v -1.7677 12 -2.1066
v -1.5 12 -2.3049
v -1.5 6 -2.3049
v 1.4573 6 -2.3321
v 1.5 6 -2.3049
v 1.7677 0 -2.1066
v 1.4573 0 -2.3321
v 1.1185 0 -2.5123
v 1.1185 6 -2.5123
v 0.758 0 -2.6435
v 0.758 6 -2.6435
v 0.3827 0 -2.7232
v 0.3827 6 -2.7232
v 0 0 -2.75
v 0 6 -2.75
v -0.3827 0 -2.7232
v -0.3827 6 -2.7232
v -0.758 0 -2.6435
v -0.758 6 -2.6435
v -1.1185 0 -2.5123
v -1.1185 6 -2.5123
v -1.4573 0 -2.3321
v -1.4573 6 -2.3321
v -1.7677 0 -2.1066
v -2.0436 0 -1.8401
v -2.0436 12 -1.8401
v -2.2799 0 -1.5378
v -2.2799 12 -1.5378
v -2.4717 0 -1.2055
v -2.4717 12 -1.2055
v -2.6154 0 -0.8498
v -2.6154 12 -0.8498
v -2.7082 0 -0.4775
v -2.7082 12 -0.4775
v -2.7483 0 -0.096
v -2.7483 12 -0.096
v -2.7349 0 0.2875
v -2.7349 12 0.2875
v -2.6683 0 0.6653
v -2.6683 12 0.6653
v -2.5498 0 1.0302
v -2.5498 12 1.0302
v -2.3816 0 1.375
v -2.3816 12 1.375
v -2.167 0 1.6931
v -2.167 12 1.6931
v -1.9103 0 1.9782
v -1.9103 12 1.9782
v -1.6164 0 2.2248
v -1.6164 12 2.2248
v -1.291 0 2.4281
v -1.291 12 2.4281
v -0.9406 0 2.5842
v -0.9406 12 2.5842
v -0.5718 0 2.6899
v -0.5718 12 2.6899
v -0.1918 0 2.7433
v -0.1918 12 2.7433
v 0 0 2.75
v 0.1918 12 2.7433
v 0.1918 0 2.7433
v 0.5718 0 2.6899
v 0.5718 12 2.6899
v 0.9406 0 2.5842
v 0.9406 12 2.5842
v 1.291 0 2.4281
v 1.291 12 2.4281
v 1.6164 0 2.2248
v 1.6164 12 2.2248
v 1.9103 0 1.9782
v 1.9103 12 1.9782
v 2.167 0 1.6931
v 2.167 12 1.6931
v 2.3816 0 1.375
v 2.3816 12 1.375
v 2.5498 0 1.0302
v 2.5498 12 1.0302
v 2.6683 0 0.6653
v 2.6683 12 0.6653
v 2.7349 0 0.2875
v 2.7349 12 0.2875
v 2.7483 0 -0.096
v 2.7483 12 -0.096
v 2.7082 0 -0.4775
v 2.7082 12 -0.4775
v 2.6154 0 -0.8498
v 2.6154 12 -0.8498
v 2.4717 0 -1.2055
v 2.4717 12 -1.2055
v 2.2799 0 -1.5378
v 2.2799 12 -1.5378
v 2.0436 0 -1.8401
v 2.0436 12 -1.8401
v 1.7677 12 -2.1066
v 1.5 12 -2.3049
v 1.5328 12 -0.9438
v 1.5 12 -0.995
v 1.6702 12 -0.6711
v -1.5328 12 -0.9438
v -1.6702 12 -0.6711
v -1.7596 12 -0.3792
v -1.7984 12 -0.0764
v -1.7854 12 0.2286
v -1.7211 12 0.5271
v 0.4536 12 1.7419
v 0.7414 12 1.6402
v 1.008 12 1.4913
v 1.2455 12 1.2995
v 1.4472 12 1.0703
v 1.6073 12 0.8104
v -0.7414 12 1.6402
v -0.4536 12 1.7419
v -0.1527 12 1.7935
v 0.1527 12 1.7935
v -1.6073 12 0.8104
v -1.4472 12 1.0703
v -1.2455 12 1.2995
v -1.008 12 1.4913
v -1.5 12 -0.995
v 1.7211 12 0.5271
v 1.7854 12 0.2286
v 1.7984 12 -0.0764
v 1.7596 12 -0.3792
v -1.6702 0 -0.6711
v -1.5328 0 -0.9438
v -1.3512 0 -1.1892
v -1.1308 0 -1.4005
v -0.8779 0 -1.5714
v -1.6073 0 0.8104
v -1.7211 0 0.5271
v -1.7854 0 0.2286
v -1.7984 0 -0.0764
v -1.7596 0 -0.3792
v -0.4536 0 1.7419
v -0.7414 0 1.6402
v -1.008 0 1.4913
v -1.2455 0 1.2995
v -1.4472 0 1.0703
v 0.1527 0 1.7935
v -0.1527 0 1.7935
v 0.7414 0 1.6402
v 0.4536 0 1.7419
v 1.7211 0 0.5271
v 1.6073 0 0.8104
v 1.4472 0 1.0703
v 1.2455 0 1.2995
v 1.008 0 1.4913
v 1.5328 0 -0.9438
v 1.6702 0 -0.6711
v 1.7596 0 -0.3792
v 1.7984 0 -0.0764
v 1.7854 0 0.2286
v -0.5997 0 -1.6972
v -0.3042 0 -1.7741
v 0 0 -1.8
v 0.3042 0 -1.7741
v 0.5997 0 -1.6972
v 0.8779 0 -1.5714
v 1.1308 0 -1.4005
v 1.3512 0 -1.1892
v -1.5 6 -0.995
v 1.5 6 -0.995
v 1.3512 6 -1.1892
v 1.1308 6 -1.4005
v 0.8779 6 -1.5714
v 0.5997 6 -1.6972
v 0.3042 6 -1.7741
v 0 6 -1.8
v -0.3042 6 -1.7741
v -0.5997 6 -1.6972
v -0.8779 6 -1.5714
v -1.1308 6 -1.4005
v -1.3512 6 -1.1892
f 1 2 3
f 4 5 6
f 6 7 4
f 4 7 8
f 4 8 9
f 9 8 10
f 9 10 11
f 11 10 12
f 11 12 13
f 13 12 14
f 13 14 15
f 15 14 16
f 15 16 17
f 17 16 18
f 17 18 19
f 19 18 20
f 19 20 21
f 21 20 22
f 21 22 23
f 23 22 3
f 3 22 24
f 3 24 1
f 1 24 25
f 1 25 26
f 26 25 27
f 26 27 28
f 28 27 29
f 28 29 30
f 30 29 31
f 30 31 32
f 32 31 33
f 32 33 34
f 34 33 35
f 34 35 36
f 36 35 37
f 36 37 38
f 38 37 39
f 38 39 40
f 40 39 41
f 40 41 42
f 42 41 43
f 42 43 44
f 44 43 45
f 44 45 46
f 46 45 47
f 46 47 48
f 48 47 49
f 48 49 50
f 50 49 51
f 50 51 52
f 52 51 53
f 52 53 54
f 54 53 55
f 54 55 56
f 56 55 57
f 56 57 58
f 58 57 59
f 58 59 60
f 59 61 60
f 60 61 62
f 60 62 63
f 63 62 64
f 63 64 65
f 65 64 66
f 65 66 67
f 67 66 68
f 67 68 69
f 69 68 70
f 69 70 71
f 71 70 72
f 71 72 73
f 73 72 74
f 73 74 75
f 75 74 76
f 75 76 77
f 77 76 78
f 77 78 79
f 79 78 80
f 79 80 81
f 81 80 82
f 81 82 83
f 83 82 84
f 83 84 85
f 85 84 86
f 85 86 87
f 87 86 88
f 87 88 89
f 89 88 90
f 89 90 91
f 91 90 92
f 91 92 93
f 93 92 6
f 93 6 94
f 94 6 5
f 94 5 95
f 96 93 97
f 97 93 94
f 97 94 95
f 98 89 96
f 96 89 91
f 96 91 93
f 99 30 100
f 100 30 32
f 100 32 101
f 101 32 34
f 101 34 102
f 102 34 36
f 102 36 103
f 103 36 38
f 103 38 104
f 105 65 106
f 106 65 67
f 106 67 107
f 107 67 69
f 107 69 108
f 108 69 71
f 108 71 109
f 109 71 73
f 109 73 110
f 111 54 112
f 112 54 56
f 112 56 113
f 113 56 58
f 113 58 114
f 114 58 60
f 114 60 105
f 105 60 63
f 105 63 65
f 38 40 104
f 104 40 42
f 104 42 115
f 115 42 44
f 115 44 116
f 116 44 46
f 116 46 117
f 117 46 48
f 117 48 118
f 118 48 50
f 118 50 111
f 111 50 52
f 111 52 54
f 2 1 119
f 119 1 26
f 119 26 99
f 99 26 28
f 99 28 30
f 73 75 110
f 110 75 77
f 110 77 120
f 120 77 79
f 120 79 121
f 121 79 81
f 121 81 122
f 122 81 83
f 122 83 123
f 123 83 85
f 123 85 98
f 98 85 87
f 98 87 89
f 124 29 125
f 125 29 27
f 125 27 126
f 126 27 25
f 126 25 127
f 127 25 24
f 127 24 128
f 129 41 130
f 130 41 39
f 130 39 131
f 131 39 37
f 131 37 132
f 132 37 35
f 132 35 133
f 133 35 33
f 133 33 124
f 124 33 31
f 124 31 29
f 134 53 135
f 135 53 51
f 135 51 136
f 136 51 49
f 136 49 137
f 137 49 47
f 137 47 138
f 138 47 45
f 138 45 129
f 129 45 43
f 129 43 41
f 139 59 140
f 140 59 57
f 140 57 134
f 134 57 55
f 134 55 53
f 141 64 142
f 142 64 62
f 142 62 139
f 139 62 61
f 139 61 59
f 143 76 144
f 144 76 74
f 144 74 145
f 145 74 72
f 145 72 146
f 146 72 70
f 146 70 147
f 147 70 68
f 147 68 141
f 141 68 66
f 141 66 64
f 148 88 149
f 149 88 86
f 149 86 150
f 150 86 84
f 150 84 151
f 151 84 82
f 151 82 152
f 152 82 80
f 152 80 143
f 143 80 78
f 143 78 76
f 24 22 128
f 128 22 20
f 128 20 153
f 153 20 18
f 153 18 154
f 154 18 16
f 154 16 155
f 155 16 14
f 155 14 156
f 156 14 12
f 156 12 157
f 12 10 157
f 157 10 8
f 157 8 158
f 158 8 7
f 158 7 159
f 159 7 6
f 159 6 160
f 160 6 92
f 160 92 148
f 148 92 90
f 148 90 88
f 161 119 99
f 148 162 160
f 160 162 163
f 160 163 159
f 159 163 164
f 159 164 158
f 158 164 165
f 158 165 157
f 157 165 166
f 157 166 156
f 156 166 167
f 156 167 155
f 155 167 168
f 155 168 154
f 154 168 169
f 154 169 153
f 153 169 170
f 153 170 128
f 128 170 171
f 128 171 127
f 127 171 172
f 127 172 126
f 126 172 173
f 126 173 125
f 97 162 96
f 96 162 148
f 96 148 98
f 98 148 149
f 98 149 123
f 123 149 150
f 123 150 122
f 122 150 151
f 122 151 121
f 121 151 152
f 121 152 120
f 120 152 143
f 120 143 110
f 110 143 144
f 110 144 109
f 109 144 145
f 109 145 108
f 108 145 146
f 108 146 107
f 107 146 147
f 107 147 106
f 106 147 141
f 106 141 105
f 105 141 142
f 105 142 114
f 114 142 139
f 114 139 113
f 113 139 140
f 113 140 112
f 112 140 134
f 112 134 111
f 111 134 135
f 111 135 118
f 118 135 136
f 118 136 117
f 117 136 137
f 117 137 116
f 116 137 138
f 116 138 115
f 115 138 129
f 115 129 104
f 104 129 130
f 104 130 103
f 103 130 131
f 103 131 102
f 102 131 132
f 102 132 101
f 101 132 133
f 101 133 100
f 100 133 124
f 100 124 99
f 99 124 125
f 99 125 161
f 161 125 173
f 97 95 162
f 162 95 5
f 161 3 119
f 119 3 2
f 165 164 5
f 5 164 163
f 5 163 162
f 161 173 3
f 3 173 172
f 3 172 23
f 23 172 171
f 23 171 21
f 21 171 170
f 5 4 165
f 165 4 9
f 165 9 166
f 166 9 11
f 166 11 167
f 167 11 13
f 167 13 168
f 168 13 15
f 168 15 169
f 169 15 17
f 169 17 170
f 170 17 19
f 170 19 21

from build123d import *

# Parameters (mm, degrees)
SKETCH1_R           = 2.75
BOSS_EXTRUDE1_DEPTH = 12
SKETCH3_R           = 1.8
CUT_EXTRUDE1_DEPTH  = 12
SKETCH4_W           = 3
SKETCH4_H           = 2.75
CUT_EXTRUDE2_DEPTH  = 6


with BuildPart() as part:
    # Sketch1 → Boss-Extrude1 (new body)
    with BuildSketch(Plane(origin=(0, 0, 0), x_dir=(1, 0, 0), z_dir=(0, 1, 0))):
        with Locations(Location((0, 0, 0), (0, 0, 270))):
            Circle(SKETCH1_R)
    extrude(amount=BOSS_EXTRUDE1_DEPTH)

    # Sketch3 → Cut-Extrude1 (cut)
    with BuildSketch(Plane.XZ):
        with Locations(Location((0, 0, 0), (0, 0, 270))):
            Circle(SKETCH3_R)
    extrude(amount=-CUT_EXTRUDE1_DEPTH, mode=Mode.SUBTRACT)

    # Sketch4 → Cut-Extrude2 (cut)
    with BuildSketch(Plane(origin=(0, 12, 0), x_dir=(1, 0, 0), z_dir=(0, 1, 0))):
        with Locations((0, 1.375)):
            Rectangle(SKETCH4_W, SKETCH4_H)
    extrude(amount=-CUT_EXTRUDE2_DEPTH, mode=Mode.SUBTRACT)


solid = part.part
